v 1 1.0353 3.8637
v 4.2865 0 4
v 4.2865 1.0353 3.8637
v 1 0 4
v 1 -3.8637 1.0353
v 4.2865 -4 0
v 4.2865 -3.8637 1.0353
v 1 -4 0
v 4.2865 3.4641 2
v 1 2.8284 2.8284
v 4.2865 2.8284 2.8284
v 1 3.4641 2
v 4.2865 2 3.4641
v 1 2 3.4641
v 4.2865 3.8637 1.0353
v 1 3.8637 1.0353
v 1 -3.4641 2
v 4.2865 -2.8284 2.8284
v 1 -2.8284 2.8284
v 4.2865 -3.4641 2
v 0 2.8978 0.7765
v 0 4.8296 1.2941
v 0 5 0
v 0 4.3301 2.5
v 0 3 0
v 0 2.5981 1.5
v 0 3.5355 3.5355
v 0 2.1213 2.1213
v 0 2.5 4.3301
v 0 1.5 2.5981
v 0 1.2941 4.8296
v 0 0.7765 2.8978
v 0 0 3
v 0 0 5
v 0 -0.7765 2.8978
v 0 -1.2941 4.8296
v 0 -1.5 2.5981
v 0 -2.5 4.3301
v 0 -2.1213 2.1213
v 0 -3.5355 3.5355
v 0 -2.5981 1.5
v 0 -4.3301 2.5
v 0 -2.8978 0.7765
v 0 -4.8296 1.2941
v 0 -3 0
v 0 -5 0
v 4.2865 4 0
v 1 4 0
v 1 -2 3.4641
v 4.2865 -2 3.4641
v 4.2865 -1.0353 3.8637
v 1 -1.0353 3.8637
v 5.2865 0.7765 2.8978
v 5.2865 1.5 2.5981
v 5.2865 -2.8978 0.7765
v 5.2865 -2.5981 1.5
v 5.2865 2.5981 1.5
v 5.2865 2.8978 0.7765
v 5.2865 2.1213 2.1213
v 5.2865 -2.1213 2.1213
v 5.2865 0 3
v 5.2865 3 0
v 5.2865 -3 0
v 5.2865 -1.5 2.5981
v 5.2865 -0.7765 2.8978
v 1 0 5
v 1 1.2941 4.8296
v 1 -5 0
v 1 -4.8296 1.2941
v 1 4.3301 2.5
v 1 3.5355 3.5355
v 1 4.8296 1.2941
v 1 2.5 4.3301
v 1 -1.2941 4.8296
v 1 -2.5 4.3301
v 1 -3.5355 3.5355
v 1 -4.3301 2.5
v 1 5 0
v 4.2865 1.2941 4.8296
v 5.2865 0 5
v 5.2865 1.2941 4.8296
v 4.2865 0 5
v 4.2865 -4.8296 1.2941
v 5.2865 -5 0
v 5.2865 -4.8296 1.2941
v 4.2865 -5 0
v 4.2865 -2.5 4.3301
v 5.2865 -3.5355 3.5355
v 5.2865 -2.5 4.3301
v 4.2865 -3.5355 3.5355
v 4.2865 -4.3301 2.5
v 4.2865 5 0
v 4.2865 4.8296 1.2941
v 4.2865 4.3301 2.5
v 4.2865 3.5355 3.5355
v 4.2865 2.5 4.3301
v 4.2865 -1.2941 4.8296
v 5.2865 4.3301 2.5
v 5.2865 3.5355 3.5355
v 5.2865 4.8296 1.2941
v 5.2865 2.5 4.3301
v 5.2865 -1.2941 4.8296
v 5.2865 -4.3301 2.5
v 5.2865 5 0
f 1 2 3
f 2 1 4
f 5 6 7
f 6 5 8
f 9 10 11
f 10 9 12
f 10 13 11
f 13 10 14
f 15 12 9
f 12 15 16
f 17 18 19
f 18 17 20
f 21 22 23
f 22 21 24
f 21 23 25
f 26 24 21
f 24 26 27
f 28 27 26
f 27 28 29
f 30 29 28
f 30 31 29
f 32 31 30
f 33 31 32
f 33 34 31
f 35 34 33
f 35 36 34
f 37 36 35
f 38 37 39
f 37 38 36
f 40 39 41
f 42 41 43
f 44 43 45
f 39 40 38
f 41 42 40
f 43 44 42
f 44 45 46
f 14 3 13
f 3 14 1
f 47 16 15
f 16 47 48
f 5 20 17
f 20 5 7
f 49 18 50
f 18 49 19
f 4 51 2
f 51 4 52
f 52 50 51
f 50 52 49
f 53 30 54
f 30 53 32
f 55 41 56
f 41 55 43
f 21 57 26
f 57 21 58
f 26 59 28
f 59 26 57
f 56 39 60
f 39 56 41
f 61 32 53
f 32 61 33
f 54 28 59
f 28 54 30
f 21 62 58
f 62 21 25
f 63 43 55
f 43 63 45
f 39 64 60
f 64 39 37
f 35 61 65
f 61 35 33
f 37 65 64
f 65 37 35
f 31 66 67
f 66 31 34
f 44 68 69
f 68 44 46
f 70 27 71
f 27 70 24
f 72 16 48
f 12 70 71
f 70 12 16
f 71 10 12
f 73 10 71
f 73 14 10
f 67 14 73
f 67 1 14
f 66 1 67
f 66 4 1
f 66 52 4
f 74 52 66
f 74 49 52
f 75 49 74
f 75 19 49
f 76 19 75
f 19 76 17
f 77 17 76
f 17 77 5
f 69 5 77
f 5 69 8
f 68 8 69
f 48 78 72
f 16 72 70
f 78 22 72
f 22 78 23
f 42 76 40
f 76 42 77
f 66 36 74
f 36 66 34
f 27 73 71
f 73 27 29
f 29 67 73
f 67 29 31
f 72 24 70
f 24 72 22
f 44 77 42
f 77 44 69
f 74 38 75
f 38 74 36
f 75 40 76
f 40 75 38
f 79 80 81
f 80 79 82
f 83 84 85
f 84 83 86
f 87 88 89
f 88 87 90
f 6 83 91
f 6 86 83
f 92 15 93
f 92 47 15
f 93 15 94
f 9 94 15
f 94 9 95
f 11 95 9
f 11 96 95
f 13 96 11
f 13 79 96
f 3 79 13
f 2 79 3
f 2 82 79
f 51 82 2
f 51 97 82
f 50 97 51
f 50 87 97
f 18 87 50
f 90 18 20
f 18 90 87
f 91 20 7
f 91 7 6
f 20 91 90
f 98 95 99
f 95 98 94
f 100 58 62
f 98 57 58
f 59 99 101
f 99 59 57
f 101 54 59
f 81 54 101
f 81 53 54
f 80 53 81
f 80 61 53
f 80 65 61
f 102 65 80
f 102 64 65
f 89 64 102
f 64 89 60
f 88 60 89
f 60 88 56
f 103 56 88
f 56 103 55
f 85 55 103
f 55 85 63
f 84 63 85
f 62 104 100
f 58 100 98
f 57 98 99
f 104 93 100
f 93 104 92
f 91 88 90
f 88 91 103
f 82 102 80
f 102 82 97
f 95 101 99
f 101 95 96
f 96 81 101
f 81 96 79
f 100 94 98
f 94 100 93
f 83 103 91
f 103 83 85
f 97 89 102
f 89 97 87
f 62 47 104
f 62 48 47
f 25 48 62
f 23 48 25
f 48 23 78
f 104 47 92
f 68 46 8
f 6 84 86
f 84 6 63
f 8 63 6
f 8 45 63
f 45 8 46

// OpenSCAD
// file: ../build_environments.scad
// build_environments.scad: modules to build level sections
//

module pool(diameter=10.0, wall_height=2.0, step_width=3.0, connections=[])
{
    difference() {
        union() {
        difference() {
            cylinder(h=0.5,r1=diameter+step_width,r2=diameter+step_width,$fn=48);
            translate([0,0,-0.1])
                cylinder(h=0.7,r1=diameter,r2=diameter,$fn=48);
        }
        difference() {
            cylinder(h=wall_height,r1=diameter+step_width+1.0,r2=diameter+step_width+1.0,$fn=48);
            translate([0,0,-0.1])
                cylinder(h=wall_height+0.2,r1=diameter+step_width,r2=diameter+step_width,$fn=48);
        }
        }
    
        for (c = connections)
        {
            rotate([0,90,0]) {
                angle = atan2(c[1],c[0]);
                rotate([-angle,0,0]) {
                    cylinder(h=diameter+5.0,r1=c[2],r2=c[2],$fn=48);
                }
            }
        }
    }
}

module straight(length=10.0, width=2.0, dy1=0.0, dy2=0.0, dz=0.0)
{
    dims = [0, 0, 0, 0, 0, (dz/length)];
    matrix = [
        [ 1, dims[0], dims[1], 0 ],
        [ dims[2], 1, dims[4], 0 ],
        [ dims[5], dims[3], 1, 0 ],
        [ 0, 0, 0, 1 ]
    ];
    multmatrix(matrix)
    difference() {
        translate([dy1,0,0])
        union() {
            rotate([0,90,0]) {
                difference() {
                    cylinder(h=(length-dy1-dy2),r1=width+1.0,r2=width+1.0,$fn=24);
                    translate([0,0,-0.1])
                        cylinder(h=(length-dy1-dy2+0.2),r1=width,r2=width,$fn=24);
                }
                difference() {
                    cylinder(h=1.0,r1=width+2.0,r2=width+2.0,$fn=24);
                    translate([0,0,-0.1])
                        cylinder(h=1.2,r1=width,r2=width,$fn=24);
                }
                translate([0,0,(length-dy1-dy2)-1.0]) {
                    difference() {
                        cylinder(h=1.0,r1=width+2.0,r2=width+2.0,$fn=24);
                        translate([0,0,-0.1])
                            cylinder(h=1.2,r1=width,r2=width,$fn=24);
                    }
                }
            }
        }
        translate([0,0,-(2*width+4.0)/2])
            cube([3*length,3*length,2*width+4.0],center=true);
    }
}

module curve(p0=[0,0], center=[0,0], dir=1, angle=0.0, width=2.0)
{
    radius = sqrt((p0[0]-center[0])*(p0[0]-center[0]) + (p0[1]-center[1])*(p0[1]-center[1]));
    if (dir == 0) {
        difference() {
            rotate([0,0,-90])
            difference() {
                rotate_extrude(angle = angle, convexity = 10, $fn=32)
                    translate([radius, 0, 0])
                        circle(r = width+1.0,$fn=24);
                rotate([0,0,-1.0])
                    rotate_extrude(angle = angle+2.0, convexity = 10, $fn=32)
                        translate([radius, 0, 0])
                            circle(r = width,$fn=24);
            }
            translate([0,0,-(2*width+4.0)/2])
                cube([5*radius,5*radius,2*width+4.0],center=true);
        }
    }
    else {
        difference() {
            rotate([0,0,90])
            difference() {
                rotate_extrude(angle = -angle, convexity = 10, $fn=32)
                    translate([radius, 0, 0])
                        circle(r = width+1.0,$fn=24);
                rotate([0,0,1.0])
                    rotate_extrude(angle = -angle-2.0, convexity = 10, $fn=32)
                        translate([radius, 0, 0])
                            circle(r = width,$fn=24);
            }
            translate([0,0,-(2*width+4.0)/2])
                cube([5*radius,5*radius,2*width+4.0],center=true);
        }
    }

}

// test pool
//pool(diameter=12.0000, wall_height=3.0000, step_width=3.0000, connections=[[0.0000,-26.0000,2.0000], [23.6074,0.0000,2.0000]]);

// test straight, slope
//straight(length=26.0000, width=2.0000, dy1=11.8322, dy2=6.7082, dz=0.0000);
//straight(length=29.1549, width=12.0000, dy1=0.0000, dy2=0.0000, dz=-15.0000);

// test curve
//curve(p0=[23.6074, 0.0000], center=[23.6074, 5.0000], dir=0, angle=60.1011, width=2.0000);
//curve(p0=[33.6426, 12.4219], center=[37.9771, 9.9295], dir=1, angle=120.4627, width=2.0000);
// main file
use <../build_environments.scad>;
straight(length=5.2865, width=3.0000, dy1=0.0000, dy2=0.0000, dz=0.0000);
